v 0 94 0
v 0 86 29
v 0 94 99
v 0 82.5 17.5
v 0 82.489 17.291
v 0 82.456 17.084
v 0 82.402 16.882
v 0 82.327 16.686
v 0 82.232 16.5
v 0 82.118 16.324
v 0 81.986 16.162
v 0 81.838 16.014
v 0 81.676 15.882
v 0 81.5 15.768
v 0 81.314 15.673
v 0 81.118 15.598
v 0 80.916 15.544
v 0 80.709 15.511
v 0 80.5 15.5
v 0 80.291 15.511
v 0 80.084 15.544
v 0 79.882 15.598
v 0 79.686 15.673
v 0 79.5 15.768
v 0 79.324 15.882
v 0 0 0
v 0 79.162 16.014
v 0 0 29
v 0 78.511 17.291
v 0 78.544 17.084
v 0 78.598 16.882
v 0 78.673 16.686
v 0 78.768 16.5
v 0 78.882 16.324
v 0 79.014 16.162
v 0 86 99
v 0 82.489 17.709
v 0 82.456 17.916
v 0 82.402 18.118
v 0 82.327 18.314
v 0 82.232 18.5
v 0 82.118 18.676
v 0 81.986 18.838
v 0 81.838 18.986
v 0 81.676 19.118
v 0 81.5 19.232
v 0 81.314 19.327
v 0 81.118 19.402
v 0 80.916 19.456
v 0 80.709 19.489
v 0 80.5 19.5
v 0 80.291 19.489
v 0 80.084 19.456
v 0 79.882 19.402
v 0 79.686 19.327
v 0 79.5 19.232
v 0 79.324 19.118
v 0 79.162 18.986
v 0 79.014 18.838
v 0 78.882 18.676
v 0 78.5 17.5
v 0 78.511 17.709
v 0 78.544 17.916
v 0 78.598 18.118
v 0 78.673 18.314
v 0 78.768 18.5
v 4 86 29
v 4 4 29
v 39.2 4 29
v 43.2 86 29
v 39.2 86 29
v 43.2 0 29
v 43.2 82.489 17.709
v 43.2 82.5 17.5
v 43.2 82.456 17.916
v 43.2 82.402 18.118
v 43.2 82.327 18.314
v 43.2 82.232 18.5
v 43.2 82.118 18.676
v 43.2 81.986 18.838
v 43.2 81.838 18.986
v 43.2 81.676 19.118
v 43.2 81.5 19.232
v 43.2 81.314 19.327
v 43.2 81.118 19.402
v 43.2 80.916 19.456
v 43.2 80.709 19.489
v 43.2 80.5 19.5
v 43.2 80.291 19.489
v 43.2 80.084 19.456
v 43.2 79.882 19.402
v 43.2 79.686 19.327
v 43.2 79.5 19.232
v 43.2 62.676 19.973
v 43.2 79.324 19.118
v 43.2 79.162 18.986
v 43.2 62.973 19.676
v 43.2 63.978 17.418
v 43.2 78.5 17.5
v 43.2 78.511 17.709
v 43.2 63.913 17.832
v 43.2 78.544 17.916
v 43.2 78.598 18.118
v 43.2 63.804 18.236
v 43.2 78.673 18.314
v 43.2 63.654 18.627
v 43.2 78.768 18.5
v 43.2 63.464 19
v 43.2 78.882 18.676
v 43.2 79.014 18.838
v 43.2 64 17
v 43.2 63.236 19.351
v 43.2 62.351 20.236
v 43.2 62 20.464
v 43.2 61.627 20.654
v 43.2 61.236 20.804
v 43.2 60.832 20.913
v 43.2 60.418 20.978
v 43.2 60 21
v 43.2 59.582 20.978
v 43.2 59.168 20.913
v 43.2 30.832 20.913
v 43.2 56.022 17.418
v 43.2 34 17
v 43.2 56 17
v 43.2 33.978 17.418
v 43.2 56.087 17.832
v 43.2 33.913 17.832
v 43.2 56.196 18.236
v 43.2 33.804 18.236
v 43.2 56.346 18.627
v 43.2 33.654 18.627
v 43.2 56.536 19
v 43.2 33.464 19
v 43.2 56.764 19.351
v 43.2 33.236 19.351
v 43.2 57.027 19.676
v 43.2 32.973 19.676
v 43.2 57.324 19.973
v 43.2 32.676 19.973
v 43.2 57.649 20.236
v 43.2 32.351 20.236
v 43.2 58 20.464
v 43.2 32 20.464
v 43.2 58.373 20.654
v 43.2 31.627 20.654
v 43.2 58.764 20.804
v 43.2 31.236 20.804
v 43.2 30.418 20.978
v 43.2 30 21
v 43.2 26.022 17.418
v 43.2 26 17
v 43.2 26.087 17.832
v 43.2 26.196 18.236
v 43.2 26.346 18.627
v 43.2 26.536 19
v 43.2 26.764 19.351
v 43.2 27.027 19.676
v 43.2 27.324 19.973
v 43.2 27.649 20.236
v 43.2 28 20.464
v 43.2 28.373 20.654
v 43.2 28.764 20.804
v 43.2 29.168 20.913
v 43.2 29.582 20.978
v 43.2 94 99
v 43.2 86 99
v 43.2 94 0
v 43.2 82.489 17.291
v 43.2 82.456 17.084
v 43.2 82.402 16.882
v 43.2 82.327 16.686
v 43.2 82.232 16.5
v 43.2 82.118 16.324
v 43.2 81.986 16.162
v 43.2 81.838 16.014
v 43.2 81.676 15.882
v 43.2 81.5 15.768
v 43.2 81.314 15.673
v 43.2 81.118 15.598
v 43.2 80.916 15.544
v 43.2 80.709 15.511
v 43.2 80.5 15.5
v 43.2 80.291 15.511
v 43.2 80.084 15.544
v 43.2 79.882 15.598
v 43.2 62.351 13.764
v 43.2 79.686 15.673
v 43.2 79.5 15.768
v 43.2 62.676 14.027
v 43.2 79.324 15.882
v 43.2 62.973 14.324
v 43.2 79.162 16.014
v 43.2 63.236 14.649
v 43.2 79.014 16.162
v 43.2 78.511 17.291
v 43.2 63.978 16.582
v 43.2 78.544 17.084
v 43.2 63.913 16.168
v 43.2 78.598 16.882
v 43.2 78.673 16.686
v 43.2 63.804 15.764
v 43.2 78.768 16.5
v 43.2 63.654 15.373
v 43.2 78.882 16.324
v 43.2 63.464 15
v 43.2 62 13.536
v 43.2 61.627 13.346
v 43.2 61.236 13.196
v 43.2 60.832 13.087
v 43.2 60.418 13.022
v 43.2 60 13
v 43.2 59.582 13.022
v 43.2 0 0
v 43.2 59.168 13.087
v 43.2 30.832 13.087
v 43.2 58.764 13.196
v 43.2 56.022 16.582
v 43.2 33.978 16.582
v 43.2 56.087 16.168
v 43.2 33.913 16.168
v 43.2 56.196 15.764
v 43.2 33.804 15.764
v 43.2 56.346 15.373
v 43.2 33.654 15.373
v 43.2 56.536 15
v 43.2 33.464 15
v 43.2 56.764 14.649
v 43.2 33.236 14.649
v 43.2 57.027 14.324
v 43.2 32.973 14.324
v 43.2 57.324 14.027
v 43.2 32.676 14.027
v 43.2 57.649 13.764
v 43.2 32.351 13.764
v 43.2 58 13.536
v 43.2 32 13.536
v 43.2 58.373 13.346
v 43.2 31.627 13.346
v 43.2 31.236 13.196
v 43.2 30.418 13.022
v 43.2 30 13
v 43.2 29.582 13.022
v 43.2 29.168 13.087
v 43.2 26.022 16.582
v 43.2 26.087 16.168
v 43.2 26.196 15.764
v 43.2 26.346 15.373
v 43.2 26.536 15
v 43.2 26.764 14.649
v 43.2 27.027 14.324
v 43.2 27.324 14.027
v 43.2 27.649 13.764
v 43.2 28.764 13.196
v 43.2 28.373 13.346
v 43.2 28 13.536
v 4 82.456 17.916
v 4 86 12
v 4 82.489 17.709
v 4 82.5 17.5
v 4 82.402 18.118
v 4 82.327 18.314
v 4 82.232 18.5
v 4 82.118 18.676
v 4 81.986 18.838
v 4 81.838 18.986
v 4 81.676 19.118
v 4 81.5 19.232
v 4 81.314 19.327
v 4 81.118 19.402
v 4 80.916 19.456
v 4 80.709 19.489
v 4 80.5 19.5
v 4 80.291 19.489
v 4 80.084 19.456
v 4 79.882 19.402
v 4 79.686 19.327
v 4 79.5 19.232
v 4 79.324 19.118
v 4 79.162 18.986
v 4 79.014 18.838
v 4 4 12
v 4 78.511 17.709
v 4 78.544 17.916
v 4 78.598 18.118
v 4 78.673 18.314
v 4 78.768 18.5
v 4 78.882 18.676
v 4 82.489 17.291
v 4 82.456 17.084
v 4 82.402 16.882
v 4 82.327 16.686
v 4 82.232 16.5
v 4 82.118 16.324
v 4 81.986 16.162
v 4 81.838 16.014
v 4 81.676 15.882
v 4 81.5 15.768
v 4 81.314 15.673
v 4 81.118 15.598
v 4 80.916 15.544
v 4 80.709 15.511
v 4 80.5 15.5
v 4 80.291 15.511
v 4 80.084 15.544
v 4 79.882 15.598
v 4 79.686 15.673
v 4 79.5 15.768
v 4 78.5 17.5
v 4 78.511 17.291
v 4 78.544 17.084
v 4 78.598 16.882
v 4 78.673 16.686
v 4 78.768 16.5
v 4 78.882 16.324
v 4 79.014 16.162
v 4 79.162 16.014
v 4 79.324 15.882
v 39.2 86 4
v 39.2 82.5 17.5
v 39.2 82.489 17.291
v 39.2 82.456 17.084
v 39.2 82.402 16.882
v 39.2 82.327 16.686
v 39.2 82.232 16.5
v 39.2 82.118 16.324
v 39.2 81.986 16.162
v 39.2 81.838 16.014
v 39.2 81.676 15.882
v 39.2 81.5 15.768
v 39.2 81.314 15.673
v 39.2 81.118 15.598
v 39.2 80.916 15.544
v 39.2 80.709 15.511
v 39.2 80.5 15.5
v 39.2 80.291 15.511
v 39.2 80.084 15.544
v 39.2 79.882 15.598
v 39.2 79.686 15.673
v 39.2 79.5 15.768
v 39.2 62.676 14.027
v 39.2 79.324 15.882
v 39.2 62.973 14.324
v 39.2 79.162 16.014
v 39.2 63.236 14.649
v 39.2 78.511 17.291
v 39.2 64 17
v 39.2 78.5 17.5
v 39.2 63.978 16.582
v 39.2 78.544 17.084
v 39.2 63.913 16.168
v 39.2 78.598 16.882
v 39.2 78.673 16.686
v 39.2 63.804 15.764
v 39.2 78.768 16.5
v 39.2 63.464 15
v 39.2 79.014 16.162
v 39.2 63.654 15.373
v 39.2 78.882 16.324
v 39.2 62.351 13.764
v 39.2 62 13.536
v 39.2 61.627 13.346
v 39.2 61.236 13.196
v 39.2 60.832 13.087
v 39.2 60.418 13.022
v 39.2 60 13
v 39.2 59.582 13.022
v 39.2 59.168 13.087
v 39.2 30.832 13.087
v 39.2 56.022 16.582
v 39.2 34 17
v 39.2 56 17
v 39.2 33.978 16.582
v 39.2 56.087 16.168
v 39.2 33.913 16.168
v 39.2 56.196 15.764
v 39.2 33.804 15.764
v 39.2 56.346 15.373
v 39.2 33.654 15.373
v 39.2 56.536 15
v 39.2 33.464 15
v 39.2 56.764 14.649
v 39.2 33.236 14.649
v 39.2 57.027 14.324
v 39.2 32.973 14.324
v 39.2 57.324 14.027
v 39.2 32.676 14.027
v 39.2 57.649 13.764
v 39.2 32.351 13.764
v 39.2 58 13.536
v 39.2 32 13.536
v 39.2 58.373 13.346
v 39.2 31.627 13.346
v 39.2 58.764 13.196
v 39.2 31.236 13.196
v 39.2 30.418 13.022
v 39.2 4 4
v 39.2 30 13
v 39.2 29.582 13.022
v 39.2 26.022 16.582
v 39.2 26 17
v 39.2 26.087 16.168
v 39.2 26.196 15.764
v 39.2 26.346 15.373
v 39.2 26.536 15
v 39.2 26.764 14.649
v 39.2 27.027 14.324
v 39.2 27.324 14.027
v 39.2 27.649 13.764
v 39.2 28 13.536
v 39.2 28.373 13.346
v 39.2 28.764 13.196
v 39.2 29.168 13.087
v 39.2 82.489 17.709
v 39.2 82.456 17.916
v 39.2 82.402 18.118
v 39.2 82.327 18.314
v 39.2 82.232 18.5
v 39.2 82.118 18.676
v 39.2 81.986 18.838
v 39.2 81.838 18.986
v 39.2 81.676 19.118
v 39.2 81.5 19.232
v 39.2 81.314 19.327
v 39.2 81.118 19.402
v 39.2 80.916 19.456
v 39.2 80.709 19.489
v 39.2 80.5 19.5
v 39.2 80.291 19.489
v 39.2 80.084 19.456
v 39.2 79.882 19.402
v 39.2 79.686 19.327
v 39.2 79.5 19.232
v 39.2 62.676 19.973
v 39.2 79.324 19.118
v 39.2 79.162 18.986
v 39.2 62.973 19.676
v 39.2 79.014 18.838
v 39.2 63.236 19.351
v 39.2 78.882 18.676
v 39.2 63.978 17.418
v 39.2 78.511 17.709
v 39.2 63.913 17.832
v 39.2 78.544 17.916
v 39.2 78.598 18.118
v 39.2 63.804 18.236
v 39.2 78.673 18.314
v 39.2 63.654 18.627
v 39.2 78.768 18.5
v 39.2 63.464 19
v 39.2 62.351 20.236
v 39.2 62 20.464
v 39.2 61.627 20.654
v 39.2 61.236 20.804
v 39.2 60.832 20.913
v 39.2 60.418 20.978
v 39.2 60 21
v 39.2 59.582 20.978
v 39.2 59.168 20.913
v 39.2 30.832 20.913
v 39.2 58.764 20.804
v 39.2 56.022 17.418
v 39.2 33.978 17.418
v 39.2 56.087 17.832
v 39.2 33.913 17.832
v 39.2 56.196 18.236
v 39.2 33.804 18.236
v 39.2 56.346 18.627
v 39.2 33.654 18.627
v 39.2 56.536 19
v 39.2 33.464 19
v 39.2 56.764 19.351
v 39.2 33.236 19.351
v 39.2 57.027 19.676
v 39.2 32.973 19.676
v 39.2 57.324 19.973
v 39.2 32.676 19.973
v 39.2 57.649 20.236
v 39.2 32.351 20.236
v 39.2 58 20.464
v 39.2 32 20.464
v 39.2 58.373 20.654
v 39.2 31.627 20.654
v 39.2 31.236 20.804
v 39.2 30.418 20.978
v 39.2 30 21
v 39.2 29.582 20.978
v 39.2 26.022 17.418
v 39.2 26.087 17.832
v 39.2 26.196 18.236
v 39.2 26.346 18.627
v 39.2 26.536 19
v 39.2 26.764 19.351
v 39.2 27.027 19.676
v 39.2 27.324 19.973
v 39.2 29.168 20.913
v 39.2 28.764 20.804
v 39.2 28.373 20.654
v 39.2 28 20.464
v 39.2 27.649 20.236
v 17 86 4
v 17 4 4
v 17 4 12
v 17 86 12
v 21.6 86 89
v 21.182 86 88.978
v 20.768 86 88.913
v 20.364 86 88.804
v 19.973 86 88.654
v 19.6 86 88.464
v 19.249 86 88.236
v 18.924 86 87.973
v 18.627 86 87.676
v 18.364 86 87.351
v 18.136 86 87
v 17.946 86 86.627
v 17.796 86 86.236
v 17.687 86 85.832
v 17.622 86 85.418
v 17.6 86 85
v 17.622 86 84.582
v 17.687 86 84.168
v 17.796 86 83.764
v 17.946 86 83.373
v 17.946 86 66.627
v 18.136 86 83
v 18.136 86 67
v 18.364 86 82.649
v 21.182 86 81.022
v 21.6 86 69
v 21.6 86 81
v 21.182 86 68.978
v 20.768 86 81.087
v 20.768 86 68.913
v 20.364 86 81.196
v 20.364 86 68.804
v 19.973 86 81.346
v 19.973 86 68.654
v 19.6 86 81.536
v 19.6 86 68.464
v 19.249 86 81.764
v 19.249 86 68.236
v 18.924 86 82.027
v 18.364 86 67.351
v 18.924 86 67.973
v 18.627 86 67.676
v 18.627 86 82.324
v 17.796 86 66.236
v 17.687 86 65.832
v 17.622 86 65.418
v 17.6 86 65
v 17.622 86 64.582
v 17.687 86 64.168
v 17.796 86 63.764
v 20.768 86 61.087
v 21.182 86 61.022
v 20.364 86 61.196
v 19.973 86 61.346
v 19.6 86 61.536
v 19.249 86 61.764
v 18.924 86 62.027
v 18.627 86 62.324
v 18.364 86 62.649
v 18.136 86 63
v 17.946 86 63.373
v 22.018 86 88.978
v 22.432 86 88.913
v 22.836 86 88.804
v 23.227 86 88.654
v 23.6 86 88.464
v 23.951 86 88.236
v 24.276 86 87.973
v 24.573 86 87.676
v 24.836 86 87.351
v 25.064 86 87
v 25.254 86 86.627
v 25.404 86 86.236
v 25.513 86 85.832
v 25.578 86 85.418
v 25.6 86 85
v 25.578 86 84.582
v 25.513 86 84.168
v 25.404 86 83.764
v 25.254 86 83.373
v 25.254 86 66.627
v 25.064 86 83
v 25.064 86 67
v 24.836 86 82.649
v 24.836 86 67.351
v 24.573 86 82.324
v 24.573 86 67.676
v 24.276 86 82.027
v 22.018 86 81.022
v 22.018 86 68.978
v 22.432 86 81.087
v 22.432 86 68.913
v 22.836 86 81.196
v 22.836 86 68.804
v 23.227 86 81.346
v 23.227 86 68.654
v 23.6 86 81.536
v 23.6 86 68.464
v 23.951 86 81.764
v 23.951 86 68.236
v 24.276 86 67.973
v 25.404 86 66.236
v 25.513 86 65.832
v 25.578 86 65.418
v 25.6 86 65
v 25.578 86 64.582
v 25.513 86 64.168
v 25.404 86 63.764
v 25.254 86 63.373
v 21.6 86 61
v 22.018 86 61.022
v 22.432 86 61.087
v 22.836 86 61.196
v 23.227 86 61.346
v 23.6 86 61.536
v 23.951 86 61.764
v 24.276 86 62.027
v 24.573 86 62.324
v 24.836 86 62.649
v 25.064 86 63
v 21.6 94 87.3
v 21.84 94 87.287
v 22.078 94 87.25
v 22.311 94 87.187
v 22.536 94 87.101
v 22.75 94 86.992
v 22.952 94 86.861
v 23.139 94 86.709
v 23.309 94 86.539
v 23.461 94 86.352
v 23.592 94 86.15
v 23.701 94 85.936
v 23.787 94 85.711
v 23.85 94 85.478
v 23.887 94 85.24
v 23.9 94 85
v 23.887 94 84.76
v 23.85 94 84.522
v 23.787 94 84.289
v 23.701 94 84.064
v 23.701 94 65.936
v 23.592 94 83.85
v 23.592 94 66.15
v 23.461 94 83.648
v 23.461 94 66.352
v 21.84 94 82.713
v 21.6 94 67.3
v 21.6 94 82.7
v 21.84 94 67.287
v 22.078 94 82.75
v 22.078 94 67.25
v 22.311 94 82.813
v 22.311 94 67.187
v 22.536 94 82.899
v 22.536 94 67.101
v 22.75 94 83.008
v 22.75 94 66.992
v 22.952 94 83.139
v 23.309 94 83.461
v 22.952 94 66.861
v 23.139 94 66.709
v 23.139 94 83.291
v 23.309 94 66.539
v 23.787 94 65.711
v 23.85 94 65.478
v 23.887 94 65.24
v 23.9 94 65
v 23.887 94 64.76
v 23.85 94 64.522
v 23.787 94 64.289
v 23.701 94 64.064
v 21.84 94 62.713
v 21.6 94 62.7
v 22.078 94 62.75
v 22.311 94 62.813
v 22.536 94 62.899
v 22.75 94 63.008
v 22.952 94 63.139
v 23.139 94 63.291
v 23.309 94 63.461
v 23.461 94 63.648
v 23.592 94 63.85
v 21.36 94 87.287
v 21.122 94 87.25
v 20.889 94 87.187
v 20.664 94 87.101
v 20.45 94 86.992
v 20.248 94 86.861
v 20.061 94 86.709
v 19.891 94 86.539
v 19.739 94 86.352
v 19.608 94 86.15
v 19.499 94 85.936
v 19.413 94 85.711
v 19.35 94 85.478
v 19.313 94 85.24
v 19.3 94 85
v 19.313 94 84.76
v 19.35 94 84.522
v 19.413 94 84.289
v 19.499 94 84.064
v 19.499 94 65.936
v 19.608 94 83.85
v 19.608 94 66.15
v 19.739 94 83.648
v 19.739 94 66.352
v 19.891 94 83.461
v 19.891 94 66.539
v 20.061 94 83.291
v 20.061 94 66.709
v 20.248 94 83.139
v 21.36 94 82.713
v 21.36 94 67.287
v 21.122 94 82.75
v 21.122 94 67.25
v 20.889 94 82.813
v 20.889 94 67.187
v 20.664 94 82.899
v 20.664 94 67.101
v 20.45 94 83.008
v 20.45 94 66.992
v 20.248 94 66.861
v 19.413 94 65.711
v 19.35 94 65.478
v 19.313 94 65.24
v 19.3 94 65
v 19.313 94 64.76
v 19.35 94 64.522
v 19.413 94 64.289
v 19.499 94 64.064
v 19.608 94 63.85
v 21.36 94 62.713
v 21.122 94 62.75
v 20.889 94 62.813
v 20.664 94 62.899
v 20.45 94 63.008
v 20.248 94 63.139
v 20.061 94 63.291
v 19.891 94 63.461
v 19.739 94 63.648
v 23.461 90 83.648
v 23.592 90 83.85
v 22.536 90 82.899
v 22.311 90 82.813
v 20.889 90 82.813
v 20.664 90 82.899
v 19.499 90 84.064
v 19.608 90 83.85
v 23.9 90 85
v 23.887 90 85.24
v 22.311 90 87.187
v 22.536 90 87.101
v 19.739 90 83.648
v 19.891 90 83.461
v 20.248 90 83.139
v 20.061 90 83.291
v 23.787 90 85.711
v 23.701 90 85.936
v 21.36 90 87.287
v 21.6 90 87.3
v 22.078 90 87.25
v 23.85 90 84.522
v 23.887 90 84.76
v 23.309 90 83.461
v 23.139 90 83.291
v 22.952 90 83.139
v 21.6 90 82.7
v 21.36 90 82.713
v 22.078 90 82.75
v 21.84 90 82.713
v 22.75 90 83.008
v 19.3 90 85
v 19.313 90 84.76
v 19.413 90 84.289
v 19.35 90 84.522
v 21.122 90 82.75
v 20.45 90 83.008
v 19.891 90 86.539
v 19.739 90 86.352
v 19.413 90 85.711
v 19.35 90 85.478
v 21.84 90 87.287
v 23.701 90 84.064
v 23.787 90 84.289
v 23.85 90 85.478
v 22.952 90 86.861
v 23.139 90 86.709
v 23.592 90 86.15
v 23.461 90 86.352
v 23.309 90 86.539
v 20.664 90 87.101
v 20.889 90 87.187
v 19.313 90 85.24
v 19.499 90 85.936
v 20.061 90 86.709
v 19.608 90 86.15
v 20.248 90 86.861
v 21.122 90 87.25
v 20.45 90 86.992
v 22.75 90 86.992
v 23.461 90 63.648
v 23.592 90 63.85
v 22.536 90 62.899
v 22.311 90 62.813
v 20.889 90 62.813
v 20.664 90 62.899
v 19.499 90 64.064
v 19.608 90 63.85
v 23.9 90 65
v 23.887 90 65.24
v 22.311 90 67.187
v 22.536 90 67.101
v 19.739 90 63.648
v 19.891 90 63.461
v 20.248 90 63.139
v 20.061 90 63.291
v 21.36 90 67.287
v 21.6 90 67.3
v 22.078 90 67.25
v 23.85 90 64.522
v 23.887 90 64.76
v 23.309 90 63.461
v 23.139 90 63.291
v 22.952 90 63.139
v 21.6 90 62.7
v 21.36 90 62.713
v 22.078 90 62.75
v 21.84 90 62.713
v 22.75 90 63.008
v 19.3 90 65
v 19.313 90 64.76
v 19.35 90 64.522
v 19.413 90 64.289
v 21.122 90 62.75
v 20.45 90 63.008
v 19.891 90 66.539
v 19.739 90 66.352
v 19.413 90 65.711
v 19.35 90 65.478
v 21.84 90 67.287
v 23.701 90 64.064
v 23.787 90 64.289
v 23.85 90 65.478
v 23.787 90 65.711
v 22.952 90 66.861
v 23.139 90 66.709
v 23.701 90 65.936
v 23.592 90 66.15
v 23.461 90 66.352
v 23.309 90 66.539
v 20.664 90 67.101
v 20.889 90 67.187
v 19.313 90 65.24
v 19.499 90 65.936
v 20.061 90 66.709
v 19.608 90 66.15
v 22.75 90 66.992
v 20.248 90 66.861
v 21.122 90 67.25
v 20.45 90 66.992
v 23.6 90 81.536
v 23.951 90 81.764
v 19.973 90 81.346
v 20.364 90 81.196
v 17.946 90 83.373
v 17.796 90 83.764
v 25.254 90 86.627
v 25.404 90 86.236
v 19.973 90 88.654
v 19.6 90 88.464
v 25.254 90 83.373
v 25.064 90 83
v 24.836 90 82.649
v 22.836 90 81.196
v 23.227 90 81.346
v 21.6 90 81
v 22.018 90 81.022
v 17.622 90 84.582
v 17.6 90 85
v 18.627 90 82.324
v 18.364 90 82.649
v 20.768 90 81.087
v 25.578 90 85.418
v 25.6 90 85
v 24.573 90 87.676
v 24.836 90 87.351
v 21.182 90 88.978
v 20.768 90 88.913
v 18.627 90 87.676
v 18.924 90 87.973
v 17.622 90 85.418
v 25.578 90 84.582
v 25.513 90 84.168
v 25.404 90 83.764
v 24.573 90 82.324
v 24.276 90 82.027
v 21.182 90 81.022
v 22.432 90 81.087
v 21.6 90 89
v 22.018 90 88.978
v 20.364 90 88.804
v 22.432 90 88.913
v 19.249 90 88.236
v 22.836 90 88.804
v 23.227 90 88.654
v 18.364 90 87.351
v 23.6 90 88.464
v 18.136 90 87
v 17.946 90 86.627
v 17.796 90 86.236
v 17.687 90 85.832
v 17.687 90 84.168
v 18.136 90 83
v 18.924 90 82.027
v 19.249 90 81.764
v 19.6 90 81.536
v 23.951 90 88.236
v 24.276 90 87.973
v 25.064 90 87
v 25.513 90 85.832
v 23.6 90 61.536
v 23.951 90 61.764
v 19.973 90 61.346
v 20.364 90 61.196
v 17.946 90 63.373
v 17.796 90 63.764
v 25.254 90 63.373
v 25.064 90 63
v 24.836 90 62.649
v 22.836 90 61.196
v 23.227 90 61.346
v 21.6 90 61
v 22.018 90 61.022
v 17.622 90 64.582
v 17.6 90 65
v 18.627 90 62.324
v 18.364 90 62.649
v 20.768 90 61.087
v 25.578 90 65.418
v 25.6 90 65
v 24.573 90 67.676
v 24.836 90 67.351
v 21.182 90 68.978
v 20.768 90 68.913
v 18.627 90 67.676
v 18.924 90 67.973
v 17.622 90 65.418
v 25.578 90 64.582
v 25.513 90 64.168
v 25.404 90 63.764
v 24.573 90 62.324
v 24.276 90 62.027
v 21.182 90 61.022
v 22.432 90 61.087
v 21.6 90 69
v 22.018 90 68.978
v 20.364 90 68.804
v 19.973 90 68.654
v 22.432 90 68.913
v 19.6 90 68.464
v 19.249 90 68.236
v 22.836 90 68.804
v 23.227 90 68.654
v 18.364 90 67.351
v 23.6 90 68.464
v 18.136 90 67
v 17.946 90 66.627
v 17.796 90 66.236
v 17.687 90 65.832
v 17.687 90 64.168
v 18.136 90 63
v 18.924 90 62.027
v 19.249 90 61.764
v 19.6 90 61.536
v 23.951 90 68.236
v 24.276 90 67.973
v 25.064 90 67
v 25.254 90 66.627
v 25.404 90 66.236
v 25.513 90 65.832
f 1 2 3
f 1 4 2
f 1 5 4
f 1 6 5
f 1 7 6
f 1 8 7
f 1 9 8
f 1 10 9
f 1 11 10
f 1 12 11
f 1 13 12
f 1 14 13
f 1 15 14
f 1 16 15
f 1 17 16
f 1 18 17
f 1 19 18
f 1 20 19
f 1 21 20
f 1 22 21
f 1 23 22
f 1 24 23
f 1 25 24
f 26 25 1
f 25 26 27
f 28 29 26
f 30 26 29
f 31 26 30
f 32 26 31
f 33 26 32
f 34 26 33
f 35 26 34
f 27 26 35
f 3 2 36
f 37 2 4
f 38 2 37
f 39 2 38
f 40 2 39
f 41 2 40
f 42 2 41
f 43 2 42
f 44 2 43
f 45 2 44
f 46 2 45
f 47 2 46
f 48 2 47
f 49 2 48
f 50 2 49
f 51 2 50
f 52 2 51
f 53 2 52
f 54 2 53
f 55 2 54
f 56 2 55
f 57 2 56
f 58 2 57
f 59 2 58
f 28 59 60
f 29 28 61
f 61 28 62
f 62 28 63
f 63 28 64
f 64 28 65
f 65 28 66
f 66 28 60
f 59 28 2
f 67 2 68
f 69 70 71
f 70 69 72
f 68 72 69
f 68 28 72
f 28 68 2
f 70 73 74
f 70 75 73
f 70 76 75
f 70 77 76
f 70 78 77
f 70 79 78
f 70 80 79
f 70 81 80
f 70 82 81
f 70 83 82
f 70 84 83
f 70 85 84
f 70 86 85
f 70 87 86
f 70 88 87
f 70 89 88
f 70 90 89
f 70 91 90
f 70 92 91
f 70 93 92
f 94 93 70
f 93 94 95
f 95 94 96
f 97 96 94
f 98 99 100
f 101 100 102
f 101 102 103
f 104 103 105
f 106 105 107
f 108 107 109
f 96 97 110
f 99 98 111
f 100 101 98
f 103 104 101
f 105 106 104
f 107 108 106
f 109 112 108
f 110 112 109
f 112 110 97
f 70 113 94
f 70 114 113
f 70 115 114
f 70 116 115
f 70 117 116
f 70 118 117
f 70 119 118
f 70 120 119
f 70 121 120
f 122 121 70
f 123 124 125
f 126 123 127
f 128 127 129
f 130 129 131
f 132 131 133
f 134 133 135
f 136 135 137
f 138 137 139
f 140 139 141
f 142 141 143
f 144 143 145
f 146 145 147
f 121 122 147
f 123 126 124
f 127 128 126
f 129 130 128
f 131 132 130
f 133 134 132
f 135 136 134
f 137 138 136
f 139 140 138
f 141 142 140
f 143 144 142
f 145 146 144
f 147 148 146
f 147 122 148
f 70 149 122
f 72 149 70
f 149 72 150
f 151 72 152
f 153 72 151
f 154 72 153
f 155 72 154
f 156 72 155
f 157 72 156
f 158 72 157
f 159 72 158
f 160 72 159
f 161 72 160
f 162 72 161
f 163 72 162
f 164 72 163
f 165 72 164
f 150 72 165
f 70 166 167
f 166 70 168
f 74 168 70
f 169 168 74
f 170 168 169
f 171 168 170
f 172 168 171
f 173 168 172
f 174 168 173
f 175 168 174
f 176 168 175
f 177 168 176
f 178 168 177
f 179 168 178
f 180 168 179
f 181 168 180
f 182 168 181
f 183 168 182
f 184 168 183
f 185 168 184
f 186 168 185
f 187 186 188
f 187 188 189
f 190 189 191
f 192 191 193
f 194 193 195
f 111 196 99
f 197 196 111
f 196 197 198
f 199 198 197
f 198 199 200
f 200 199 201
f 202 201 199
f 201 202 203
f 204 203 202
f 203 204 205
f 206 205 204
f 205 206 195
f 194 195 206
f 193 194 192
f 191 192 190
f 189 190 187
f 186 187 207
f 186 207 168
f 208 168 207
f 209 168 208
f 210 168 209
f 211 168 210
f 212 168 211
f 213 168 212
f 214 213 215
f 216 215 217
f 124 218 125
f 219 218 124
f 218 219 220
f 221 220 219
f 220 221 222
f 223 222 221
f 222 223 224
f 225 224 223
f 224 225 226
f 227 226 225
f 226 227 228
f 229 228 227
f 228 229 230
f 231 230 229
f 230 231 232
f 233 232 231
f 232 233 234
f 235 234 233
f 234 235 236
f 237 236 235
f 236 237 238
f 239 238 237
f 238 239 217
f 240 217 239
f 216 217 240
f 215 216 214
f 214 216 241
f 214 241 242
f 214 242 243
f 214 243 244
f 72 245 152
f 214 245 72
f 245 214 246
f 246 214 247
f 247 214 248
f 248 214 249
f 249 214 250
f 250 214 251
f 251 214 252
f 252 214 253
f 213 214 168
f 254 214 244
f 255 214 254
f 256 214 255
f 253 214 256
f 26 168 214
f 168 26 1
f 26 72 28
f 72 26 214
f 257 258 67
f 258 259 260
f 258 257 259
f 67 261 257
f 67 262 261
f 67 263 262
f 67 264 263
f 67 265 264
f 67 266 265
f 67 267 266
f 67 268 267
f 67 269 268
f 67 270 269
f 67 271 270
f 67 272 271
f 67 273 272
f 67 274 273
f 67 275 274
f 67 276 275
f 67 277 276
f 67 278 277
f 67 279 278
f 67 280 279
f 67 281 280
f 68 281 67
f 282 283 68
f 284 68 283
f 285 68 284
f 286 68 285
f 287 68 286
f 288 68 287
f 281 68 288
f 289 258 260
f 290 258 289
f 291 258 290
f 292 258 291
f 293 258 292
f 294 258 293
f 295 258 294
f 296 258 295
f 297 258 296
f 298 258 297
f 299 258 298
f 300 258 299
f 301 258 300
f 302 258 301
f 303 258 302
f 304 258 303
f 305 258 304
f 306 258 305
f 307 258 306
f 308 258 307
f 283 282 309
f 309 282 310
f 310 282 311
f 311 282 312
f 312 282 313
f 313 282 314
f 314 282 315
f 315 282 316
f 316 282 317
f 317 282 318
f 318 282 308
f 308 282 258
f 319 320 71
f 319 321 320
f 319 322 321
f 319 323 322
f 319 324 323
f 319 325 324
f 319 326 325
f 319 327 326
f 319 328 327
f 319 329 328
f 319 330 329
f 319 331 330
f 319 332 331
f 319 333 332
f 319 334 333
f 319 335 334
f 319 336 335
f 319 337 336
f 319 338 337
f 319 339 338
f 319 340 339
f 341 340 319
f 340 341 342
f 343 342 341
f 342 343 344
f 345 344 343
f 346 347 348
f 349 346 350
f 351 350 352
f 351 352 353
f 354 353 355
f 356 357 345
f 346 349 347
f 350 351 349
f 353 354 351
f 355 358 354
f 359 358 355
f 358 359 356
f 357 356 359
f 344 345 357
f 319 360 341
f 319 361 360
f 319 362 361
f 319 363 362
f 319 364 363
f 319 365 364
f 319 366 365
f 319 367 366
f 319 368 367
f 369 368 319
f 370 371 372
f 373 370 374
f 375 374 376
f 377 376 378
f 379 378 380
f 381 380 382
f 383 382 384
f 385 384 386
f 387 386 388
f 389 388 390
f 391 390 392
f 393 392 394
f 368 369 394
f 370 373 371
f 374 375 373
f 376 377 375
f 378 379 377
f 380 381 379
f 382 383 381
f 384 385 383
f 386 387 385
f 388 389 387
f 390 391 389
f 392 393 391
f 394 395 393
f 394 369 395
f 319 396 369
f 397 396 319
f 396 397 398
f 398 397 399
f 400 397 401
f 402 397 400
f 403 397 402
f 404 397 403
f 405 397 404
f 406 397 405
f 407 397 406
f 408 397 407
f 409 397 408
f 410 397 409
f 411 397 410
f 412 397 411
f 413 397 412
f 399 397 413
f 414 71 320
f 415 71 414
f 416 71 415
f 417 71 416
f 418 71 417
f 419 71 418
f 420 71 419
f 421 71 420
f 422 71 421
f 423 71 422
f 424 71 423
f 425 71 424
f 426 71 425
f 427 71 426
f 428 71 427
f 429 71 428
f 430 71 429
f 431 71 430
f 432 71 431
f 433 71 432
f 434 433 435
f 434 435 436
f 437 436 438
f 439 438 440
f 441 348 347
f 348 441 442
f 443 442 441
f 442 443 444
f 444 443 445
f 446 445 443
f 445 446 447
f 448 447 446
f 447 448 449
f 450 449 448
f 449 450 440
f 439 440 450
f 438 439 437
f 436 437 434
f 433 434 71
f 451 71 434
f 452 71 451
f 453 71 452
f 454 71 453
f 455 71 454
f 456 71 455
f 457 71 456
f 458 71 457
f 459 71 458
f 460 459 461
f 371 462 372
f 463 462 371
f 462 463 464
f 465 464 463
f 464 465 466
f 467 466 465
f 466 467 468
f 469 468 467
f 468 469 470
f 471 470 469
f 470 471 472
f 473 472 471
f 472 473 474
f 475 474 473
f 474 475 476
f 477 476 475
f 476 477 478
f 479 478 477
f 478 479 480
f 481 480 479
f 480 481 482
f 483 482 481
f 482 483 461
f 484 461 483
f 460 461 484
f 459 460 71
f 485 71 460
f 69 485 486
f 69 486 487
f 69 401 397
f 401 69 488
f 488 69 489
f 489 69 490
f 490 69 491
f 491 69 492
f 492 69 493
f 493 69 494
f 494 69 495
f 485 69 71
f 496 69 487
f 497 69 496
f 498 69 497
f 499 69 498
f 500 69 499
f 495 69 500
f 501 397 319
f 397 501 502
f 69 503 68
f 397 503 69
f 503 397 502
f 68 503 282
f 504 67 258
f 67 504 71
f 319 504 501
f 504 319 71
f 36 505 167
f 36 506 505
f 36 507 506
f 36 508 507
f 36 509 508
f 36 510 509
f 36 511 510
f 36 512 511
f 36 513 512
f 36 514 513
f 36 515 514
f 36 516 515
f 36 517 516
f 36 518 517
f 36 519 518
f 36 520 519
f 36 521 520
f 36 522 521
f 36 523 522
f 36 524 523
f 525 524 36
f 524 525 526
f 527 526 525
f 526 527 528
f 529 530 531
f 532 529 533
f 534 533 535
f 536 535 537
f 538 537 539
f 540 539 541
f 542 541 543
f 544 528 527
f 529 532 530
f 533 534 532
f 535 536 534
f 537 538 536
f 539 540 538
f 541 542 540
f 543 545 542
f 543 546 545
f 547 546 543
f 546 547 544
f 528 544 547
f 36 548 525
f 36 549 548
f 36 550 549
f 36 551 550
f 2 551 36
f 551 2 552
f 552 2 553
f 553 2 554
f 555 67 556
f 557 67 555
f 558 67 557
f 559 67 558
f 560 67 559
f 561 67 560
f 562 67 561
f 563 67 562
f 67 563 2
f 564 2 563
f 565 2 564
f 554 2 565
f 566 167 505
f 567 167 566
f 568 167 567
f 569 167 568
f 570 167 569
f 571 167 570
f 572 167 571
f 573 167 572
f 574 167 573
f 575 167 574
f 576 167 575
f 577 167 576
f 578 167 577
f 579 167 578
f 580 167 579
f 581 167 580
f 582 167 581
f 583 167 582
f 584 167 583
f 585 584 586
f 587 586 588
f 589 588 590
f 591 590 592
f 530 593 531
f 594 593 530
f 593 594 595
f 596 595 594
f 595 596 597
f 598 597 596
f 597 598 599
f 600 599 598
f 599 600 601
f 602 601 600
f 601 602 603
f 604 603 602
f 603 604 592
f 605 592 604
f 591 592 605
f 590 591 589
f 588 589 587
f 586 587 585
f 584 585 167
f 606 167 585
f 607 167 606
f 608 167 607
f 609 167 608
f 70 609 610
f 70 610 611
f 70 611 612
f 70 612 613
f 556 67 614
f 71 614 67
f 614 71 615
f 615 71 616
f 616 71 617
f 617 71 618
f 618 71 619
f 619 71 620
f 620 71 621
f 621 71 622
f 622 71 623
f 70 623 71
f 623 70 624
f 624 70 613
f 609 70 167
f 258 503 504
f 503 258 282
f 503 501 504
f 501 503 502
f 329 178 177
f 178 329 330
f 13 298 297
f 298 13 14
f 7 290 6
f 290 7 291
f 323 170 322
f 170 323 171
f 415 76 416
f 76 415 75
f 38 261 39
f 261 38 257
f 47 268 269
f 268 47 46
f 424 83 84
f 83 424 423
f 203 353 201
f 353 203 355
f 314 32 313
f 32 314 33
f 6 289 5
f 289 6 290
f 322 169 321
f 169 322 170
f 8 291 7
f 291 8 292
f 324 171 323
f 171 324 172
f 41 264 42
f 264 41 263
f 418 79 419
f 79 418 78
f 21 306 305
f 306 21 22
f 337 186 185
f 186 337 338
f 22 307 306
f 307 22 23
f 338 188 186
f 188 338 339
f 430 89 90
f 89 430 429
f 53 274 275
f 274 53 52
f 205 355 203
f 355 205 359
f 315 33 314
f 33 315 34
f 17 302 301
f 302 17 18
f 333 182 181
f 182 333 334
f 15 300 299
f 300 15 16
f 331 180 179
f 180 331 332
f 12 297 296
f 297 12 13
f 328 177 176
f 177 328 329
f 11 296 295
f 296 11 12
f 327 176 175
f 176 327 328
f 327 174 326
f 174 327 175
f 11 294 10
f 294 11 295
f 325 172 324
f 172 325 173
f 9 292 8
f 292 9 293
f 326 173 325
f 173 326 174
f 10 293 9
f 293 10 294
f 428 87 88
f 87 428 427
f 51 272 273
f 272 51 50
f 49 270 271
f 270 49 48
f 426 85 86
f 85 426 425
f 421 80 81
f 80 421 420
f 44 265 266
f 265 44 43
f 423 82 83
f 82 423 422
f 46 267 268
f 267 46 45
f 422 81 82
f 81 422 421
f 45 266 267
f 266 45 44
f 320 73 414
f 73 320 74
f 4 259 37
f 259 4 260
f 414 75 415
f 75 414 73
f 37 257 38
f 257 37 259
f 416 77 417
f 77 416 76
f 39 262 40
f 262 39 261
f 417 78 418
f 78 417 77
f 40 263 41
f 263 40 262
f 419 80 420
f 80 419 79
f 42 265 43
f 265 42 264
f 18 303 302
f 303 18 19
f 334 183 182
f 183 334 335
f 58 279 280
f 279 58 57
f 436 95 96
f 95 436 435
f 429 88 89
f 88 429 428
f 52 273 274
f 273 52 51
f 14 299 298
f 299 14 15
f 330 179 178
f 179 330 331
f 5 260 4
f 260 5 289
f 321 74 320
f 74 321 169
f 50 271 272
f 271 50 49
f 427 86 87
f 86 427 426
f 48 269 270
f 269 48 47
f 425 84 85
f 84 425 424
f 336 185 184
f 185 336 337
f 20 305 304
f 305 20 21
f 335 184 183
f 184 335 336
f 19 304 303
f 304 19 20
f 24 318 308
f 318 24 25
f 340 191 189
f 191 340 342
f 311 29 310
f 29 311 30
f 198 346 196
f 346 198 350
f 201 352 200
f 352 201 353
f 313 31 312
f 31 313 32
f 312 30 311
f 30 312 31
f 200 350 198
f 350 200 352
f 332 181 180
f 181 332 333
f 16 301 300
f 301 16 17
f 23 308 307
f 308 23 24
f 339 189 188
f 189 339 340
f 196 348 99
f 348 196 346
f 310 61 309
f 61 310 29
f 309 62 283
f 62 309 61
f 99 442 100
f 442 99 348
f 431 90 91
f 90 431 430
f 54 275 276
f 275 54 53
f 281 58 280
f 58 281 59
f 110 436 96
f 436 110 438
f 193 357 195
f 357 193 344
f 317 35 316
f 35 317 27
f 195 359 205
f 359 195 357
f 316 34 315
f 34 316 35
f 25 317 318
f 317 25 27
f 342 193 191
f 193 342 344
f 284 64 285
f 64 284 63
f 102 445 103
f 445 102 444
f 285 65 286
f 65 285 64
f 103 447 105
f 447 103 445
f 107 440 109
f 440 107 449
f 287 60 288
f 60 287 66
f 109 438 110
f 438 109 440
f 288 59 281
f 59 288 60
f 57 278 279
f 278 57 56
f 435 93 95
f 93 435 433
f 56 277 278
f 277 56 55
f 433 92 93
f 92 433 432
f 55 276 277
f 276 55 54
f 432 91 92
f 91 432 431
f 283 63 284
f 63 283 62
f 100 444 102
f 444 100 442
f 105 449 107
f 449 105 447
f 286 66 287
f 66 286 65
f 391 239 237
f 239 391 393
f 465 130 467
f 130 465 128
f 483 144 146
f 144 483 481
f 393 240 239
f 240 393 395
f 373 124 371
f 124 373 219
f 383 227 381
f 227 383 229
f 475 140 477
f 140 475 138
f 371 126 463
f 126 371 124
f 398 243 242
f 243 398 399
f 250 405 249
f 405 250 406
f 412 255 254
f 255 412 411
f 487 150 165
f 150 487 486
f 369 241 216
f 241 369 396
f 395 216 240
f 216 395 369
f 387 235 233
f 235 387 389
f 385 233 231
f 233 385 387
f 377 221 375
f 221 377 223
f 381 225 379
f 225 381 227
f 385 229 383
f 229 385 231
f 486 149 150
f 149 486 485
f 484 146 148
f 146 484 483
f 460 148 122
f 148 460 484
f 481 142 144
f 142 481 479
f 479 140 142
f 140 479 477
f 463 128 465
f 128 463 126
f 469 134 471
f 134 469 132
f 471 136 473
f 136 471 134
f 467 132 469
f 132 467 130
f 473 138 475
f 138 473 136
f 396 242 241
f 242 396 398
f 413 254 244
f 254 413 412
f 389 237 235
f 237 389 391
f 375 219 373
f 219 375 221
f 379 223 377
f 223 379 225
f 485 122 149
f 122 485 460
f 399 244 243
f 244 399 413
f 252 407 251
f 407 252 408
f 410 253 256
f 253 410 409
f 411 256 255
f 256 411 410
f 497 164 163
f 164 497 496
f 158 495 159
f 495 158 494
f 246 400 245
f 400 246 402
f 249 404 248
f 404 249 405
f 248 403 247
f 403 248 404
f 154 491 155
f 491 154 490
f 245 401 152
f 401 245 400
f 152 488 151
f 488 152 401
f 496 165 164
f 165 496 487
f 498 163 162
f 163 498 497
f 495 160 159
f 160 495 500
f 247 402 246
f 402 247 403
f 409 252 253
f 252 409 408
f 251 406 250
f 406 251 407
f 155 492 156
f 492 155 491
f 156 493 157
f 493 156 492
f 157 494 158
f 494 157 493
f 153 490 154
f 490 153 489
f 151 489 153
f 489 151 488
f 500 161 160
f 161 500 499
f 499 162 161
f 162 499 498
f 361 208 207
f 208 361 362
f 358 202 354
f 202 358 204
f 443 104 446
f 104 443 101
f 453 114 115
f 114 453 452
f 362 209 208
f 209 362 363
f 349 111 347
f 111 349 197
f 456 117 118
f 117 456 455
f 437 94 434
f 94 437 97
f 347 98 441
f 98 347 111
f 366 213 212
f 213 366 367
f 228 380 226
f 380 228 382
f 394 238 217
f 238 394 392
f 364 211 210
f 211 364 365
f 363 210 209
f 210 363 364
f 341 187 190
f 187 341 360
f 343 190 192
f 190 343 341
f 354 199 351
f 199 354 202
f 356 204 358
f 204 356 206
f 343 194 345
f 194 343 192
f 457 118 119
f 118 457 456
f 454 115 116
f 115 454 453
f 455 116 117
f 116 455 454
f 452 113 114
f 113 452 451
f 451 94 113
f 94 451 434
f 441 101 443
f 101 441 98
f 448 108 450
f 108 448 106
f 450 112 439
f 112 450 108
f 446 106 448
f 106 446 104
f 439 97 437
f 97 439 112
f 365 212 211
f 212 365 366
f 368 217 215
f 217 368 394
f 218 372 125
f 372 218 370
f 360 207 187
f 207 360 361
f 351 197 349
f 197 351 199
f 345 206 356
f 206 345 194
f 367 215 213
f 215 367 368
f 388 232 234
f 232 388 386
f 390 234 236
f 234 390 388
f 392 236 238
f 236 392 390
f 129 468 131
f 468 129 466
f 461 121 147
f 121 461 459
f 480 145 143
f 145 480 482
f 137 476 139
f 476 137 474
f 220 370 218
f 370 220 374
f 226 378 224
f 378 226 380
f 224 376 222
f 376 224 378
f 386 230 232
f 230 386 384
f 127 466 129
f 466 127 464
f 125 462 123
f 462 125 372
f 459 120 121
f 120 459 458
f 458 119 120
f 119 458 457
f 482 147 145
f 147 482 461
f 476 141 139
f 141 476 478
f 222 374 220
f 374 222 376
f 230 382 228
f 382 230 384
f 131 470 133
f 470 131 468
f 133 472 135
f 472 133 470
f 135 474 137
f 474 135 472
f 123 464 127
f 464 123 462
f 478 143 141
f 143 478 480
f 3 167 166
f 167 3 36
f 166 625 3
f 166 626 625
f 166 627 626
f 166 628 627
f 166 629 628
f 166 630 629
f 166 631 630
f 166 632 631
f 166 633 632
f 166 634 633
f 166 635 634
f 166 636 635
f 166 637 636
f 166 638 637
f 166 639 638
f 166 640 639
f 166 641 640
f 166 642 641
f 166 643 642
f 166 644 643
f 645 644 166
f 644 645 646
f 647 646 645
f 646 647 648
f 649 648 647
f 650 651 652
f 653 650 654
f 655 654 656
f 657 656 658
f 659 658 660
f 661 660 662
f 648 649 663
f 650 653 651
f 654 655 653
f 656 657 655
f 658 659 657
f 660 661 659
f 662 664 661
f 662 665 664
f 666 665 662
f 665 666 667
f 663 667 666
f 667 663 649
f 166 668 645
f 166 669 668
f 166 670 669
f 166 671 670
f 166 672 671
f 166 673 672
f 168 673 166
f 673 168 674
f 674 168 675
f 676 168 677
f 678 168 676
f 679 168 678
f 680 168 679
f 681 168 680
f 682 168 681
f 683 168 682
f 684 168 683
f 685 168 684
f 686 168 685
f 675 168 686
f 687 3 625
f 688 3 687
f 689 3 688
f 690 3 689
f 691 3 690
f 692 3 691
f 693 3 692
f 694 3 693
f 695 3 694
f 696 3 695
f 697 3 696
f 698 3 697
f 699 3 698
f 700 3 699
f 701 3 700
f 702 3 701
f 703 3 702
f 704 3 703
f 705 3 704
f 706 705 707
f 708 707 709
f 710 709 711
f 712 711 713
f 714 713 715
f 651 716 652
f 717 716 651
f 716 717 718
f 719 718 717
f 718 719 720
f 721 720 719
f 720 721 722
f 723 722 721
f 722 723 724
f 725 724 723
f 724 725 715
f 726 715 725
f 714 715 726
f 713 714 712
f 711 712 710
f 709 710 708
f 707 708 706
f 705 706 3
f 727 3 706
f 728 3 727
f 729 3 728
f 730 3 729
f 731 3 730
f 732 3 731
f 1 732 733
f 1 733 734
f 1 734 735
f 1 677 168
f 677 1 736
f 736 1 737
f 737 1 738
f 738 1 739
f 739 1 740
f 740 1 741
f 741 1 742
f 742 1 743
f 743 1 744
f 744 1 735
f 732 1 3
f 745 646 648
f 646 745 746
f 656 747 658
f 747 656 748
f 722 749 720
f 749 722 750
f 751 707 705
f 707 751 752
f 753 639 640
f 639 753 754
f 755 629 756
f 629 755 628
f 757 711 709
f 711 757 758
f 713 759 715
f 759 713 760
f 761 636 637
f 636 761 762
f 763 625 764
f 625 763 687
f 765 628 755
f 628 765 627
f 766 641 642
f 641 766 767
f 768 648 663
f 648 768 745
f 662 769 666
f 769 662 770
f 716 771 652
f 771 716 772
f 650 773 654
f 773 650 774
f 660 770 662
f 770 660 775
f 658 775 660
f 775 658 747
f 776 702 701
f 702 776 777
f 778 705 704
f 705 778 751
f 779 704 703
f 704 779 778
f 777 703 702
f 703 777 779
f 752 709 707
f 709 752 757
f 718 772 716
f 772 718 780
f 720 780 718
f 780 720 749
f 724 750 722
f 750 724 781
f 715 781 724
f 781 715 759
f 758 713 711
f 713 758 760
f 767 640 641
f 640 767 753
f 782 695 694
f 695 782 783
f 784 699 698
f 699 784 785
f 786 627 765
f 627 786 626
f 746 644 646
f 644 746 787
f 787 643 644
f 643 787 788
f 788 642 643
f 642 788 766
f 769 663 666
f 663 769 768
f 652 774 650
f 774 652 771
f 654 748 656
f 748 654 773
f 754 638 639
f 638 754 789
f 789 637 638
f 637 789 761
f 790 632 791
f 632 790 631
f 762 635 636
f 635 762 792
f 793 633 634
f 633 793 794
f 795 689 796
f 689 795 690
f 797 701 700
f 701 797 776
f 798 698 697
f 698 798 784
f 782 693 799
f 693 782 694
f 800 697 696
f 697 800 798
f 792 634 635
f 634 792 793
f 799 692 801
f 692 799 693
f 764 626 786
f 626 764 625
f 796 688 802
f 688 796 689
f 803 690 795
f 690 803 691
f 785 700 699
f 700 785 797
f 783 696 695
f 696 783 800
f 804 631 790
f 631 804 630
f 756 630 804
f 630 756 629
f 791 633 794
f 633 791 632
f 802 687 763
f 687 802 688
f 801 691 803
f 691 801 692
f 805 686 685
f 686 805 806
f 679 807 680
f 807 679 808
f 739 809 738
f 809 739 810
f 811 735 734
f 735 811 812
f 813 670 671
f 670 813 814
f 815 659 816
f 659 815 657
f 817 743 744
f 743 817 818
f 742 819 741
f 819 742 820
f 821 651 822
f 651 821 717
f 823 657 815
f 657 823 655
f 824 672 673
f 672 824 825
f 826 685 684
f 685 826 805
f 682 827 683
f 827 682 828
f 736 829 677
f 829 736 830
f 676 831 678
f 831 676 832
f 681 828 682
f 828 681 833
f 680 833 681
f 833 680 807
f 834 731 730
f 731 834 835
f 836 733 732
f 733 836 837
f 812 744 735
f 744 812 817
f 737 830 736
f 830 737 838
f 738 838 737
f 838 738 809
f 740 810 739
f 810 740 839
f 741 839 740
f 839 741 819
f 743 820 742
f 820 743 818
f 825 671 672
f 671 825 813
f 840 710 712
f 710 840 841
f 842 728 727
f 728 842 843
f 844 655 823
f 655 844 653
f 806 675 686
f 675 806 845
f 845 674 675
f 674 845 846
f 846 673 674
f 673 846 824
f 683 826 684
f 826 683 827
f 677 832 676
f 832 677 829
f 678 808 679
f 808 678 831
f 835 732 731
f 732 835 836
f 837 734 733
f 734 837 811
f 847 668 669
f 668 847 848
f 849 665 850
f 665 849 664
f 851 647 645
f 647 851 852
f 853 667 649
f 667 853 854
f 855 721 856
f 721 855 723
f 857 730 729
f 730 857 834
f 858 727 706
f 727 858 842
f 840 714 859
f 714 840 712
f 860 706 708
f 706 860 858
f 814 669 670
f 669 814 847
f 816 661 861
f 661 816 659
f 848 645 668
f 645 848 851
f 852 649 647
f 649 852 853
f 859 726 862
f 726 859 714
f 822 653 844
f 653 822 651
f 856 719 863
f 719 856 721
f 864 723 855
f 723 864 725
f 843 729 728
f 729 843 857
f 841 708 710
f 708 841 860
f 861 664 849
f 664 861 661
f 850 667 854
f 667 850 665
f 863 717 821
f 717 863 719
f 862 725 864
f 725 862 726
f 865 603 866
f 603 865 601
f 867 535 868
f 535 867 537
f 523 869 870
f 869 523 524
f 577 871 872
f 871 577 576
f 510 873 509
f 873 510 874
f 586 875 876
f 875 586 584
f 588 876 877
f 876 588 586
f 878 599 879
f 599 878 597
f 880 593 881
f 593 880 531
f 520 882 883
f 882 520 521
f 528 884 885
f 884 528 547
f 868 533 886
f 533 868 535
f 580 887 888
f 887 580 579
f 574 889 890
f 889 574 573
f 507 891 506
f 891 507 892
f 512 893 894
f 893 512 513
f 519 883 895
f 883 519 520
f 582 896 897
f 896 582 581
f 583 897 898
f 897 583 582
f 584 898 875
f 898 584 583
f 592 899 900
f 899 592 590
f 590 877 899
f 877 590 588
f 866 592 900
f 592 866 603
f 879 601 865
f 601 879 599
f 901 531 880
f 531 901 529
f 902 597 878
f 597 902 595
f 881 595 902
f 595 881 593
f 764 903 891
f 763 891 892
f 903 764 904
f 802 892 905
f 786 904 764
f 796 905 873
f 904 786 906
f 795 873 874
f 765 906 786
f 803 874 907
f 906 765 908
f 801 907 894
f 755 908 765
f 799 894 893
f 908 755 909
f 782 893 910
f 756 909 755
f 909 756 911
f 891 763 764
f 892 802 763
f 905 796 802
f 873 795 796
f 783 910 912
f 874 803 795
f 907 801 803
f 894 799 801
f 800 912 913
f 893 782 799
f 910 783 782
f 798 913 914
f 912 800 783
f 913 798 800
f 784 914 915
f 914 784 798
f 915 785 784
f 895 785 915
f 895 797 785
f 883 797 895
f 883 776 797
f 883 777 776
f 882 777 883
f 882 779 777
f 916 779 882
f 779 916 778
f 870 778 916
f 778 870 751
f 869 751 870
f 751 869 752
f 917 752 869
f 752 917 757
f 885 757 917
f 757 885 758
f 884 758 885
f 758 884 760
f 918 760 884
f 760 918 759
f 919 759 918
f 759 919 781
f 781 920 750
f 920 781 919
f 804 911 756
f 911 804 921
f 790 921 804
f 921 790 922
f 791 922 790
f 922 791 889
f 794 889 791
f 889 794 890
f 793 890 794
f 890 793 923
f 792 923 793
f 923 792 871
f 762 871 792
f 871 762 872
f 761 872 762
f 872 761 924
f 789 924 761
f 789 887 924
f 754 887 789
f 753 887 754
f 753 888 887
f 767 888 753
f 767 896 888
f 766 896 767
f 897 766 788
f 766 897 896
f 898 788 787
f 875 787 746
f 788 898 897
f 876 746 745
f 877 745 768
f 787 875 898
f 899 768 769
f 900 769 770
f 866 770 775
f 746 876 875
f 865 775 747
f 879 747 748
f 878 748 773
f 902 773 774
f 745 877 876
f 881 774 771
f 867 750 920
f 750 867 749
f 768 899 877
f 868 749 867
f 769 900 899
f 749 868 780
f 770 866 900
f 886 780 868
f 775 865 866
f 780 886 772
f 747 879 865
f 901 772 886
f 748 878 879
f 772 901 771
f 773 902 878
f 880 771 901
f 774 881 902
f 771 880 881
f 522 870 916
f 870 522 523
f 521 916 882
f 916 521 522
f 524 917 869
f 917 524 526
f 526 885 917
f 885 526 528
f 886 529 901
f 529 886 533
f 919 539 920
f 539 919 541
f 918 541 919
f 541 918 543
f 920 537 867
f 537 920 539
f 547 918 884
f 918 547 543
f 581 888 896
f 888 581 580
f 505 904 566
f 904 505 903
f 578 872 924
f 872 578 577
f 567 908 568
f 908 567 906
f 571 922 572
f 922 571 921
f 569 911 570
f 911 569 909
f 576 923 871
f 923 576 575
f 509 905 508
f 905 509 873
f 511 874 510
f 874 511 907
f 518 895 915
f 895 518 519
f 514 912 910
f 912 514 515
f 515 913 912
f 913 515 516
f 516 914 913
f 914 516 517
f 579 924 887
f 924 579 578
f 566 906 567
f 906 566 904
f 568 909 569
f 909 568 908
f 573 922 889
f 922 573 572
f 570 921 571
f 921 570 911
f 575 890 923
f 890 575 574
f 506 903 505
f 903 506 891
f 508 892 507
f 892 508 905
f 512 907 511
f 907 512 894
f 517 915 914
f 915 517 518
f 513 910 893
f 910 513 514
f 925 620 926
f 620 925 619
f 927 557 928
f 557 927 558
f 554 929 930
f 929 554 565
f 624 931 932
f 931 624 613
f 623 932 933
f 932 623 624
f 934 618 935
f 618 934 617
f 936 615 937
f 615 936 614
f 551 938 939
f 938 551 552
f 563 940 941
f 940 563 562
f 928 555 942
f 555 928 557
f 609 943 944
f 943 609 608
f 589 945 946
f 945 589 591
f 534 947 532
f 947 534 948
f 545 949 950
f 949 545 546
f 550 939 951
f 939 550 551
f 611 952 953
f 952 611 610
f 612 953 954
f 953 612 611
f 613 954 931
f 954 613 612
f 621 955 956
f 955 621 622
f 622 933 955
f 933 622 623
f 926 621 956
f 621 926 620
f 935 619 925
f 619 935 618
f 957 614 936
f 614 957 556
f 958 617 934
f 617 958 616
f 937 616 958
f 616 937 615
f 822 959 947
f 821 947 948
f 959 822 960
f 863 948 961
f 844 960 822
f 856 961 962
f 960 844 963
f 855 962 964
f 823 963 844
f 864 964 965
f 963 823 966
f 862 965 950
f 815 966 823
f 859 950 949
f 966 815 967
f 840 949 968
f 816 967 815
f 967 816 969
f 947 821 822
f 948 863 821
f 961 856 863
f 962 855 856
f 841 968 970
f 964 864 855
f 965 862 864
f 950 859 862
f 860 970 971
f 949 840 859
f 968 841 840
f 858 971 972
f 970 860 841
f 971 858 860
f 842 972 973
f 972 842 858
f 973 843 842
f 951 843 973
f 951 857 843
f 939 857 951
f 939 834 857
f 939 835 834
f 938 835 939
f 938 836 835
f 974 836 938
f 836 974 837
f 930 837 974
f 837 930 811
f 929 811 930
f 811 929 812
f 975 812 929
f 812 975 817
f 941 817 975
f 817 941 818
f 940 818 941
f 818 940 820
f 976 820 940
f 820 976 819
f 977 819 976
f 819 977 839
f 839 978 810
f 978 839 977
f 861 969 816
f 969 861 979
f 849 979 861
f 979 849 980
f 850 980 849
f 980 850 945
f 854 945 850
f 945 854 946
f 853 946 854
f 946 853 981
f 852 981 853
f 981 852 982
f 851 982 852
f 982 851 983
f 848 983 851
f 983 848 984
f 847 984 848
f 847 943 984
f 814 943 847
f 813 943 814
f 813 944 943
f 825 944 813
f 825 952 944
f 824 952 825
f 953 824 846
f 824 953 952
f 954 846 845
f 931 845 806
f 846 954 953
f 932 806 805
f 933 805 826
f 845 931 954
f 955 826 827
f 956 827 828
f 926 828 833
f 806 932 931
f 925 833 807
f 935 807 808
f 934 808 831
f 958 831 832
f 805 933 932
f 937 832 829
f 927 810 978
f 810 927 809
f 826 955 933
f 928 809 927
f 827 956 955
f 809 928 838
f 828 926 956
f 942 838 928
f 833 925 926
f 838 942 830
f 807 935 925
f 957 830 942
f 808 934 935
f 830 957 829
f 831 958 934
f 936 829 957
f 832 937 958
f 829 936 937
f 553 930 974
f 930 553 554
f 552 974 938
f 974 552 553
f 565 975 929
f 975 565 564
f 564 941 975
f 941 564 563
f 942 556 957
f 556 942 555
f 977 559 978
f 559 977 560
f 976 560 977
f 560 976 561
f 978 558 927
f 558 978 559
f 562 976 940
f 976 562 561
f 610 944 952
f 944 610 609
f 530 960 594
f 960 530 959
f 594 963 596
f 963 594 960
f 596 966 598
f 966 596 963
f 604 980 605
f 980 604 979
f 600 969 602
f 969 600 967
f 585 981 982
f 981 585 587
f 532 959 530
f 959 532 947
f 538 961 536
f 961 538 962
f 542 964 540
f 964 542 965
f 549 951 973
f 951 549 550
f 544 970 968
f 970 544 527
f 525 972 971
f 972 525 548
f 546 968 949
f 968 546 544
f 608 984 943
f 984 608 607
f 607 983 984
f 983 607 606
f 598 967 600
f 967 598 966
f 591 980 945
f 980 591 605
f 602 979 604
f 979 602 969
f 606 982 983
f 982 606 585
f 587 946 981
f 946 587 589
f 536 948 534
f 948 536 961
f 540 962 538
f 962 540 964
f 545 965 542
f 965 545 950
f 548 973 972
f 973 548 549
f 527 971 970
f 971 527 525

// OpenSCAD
$fn = 60;

x = 35.2;
y = 82;
h = 17 + 8;

w = 4;

//--------------------------------------------------------

difference() {
	  union() {
			difference() {
				  cube([x + 2 * w, y + 2 * w, h + w]);
				  translate([w , w, w]) cube([x, y, h]);
			}
			translate([w , w, w]) cube([13, y, 8]);
	  }
	  translate([0 , w + y - 5.5, w + 8 + 5 + 0.5]) rotate([0, 90, 0]) cylinder(h=x + 2 * w, d=4);
	  translate([w + x , (w + y + w) / 6 * 2, w + h - 12]) rotate([0, 90, 0]) cylinder(h=w, d=8);
	  translate([w + x , (w + y + w) / 6 * 4, w + h - 12]) rotate([0, 90, 0]) cylinder(h=w, d=8);
}

difference() {
	  translate([0 , w + y, 0]) cube([w + x + w, 8, (126 + w +8) / 2 + 30]);
	  translate([(w + x + w) / 2 , w + y, w + 8 + (126 / 2) + 10]) rotate([-90, 0, 0]) cylinder(h=8, d=4.6);
	  translate([(w + x + w) / 2 , w + y, w + 8 + (126 / 2) - 10]) rotate([-90, 0, 0]) cylinder(h=8, d=4.6);

	  translate([(w + x + w) / 2 , w + y - 4, w + 8 + (126 / 2) + 10]) rotate([-90, 0, 0]) cylinder(h=8, d=8);
	  translate([(w + x + w) / 2 , w + y - 4, w + 8 +(126 / 2) - 10]) rotate([-90, 0, 0]) cylinder(h=8, d=8);

}
